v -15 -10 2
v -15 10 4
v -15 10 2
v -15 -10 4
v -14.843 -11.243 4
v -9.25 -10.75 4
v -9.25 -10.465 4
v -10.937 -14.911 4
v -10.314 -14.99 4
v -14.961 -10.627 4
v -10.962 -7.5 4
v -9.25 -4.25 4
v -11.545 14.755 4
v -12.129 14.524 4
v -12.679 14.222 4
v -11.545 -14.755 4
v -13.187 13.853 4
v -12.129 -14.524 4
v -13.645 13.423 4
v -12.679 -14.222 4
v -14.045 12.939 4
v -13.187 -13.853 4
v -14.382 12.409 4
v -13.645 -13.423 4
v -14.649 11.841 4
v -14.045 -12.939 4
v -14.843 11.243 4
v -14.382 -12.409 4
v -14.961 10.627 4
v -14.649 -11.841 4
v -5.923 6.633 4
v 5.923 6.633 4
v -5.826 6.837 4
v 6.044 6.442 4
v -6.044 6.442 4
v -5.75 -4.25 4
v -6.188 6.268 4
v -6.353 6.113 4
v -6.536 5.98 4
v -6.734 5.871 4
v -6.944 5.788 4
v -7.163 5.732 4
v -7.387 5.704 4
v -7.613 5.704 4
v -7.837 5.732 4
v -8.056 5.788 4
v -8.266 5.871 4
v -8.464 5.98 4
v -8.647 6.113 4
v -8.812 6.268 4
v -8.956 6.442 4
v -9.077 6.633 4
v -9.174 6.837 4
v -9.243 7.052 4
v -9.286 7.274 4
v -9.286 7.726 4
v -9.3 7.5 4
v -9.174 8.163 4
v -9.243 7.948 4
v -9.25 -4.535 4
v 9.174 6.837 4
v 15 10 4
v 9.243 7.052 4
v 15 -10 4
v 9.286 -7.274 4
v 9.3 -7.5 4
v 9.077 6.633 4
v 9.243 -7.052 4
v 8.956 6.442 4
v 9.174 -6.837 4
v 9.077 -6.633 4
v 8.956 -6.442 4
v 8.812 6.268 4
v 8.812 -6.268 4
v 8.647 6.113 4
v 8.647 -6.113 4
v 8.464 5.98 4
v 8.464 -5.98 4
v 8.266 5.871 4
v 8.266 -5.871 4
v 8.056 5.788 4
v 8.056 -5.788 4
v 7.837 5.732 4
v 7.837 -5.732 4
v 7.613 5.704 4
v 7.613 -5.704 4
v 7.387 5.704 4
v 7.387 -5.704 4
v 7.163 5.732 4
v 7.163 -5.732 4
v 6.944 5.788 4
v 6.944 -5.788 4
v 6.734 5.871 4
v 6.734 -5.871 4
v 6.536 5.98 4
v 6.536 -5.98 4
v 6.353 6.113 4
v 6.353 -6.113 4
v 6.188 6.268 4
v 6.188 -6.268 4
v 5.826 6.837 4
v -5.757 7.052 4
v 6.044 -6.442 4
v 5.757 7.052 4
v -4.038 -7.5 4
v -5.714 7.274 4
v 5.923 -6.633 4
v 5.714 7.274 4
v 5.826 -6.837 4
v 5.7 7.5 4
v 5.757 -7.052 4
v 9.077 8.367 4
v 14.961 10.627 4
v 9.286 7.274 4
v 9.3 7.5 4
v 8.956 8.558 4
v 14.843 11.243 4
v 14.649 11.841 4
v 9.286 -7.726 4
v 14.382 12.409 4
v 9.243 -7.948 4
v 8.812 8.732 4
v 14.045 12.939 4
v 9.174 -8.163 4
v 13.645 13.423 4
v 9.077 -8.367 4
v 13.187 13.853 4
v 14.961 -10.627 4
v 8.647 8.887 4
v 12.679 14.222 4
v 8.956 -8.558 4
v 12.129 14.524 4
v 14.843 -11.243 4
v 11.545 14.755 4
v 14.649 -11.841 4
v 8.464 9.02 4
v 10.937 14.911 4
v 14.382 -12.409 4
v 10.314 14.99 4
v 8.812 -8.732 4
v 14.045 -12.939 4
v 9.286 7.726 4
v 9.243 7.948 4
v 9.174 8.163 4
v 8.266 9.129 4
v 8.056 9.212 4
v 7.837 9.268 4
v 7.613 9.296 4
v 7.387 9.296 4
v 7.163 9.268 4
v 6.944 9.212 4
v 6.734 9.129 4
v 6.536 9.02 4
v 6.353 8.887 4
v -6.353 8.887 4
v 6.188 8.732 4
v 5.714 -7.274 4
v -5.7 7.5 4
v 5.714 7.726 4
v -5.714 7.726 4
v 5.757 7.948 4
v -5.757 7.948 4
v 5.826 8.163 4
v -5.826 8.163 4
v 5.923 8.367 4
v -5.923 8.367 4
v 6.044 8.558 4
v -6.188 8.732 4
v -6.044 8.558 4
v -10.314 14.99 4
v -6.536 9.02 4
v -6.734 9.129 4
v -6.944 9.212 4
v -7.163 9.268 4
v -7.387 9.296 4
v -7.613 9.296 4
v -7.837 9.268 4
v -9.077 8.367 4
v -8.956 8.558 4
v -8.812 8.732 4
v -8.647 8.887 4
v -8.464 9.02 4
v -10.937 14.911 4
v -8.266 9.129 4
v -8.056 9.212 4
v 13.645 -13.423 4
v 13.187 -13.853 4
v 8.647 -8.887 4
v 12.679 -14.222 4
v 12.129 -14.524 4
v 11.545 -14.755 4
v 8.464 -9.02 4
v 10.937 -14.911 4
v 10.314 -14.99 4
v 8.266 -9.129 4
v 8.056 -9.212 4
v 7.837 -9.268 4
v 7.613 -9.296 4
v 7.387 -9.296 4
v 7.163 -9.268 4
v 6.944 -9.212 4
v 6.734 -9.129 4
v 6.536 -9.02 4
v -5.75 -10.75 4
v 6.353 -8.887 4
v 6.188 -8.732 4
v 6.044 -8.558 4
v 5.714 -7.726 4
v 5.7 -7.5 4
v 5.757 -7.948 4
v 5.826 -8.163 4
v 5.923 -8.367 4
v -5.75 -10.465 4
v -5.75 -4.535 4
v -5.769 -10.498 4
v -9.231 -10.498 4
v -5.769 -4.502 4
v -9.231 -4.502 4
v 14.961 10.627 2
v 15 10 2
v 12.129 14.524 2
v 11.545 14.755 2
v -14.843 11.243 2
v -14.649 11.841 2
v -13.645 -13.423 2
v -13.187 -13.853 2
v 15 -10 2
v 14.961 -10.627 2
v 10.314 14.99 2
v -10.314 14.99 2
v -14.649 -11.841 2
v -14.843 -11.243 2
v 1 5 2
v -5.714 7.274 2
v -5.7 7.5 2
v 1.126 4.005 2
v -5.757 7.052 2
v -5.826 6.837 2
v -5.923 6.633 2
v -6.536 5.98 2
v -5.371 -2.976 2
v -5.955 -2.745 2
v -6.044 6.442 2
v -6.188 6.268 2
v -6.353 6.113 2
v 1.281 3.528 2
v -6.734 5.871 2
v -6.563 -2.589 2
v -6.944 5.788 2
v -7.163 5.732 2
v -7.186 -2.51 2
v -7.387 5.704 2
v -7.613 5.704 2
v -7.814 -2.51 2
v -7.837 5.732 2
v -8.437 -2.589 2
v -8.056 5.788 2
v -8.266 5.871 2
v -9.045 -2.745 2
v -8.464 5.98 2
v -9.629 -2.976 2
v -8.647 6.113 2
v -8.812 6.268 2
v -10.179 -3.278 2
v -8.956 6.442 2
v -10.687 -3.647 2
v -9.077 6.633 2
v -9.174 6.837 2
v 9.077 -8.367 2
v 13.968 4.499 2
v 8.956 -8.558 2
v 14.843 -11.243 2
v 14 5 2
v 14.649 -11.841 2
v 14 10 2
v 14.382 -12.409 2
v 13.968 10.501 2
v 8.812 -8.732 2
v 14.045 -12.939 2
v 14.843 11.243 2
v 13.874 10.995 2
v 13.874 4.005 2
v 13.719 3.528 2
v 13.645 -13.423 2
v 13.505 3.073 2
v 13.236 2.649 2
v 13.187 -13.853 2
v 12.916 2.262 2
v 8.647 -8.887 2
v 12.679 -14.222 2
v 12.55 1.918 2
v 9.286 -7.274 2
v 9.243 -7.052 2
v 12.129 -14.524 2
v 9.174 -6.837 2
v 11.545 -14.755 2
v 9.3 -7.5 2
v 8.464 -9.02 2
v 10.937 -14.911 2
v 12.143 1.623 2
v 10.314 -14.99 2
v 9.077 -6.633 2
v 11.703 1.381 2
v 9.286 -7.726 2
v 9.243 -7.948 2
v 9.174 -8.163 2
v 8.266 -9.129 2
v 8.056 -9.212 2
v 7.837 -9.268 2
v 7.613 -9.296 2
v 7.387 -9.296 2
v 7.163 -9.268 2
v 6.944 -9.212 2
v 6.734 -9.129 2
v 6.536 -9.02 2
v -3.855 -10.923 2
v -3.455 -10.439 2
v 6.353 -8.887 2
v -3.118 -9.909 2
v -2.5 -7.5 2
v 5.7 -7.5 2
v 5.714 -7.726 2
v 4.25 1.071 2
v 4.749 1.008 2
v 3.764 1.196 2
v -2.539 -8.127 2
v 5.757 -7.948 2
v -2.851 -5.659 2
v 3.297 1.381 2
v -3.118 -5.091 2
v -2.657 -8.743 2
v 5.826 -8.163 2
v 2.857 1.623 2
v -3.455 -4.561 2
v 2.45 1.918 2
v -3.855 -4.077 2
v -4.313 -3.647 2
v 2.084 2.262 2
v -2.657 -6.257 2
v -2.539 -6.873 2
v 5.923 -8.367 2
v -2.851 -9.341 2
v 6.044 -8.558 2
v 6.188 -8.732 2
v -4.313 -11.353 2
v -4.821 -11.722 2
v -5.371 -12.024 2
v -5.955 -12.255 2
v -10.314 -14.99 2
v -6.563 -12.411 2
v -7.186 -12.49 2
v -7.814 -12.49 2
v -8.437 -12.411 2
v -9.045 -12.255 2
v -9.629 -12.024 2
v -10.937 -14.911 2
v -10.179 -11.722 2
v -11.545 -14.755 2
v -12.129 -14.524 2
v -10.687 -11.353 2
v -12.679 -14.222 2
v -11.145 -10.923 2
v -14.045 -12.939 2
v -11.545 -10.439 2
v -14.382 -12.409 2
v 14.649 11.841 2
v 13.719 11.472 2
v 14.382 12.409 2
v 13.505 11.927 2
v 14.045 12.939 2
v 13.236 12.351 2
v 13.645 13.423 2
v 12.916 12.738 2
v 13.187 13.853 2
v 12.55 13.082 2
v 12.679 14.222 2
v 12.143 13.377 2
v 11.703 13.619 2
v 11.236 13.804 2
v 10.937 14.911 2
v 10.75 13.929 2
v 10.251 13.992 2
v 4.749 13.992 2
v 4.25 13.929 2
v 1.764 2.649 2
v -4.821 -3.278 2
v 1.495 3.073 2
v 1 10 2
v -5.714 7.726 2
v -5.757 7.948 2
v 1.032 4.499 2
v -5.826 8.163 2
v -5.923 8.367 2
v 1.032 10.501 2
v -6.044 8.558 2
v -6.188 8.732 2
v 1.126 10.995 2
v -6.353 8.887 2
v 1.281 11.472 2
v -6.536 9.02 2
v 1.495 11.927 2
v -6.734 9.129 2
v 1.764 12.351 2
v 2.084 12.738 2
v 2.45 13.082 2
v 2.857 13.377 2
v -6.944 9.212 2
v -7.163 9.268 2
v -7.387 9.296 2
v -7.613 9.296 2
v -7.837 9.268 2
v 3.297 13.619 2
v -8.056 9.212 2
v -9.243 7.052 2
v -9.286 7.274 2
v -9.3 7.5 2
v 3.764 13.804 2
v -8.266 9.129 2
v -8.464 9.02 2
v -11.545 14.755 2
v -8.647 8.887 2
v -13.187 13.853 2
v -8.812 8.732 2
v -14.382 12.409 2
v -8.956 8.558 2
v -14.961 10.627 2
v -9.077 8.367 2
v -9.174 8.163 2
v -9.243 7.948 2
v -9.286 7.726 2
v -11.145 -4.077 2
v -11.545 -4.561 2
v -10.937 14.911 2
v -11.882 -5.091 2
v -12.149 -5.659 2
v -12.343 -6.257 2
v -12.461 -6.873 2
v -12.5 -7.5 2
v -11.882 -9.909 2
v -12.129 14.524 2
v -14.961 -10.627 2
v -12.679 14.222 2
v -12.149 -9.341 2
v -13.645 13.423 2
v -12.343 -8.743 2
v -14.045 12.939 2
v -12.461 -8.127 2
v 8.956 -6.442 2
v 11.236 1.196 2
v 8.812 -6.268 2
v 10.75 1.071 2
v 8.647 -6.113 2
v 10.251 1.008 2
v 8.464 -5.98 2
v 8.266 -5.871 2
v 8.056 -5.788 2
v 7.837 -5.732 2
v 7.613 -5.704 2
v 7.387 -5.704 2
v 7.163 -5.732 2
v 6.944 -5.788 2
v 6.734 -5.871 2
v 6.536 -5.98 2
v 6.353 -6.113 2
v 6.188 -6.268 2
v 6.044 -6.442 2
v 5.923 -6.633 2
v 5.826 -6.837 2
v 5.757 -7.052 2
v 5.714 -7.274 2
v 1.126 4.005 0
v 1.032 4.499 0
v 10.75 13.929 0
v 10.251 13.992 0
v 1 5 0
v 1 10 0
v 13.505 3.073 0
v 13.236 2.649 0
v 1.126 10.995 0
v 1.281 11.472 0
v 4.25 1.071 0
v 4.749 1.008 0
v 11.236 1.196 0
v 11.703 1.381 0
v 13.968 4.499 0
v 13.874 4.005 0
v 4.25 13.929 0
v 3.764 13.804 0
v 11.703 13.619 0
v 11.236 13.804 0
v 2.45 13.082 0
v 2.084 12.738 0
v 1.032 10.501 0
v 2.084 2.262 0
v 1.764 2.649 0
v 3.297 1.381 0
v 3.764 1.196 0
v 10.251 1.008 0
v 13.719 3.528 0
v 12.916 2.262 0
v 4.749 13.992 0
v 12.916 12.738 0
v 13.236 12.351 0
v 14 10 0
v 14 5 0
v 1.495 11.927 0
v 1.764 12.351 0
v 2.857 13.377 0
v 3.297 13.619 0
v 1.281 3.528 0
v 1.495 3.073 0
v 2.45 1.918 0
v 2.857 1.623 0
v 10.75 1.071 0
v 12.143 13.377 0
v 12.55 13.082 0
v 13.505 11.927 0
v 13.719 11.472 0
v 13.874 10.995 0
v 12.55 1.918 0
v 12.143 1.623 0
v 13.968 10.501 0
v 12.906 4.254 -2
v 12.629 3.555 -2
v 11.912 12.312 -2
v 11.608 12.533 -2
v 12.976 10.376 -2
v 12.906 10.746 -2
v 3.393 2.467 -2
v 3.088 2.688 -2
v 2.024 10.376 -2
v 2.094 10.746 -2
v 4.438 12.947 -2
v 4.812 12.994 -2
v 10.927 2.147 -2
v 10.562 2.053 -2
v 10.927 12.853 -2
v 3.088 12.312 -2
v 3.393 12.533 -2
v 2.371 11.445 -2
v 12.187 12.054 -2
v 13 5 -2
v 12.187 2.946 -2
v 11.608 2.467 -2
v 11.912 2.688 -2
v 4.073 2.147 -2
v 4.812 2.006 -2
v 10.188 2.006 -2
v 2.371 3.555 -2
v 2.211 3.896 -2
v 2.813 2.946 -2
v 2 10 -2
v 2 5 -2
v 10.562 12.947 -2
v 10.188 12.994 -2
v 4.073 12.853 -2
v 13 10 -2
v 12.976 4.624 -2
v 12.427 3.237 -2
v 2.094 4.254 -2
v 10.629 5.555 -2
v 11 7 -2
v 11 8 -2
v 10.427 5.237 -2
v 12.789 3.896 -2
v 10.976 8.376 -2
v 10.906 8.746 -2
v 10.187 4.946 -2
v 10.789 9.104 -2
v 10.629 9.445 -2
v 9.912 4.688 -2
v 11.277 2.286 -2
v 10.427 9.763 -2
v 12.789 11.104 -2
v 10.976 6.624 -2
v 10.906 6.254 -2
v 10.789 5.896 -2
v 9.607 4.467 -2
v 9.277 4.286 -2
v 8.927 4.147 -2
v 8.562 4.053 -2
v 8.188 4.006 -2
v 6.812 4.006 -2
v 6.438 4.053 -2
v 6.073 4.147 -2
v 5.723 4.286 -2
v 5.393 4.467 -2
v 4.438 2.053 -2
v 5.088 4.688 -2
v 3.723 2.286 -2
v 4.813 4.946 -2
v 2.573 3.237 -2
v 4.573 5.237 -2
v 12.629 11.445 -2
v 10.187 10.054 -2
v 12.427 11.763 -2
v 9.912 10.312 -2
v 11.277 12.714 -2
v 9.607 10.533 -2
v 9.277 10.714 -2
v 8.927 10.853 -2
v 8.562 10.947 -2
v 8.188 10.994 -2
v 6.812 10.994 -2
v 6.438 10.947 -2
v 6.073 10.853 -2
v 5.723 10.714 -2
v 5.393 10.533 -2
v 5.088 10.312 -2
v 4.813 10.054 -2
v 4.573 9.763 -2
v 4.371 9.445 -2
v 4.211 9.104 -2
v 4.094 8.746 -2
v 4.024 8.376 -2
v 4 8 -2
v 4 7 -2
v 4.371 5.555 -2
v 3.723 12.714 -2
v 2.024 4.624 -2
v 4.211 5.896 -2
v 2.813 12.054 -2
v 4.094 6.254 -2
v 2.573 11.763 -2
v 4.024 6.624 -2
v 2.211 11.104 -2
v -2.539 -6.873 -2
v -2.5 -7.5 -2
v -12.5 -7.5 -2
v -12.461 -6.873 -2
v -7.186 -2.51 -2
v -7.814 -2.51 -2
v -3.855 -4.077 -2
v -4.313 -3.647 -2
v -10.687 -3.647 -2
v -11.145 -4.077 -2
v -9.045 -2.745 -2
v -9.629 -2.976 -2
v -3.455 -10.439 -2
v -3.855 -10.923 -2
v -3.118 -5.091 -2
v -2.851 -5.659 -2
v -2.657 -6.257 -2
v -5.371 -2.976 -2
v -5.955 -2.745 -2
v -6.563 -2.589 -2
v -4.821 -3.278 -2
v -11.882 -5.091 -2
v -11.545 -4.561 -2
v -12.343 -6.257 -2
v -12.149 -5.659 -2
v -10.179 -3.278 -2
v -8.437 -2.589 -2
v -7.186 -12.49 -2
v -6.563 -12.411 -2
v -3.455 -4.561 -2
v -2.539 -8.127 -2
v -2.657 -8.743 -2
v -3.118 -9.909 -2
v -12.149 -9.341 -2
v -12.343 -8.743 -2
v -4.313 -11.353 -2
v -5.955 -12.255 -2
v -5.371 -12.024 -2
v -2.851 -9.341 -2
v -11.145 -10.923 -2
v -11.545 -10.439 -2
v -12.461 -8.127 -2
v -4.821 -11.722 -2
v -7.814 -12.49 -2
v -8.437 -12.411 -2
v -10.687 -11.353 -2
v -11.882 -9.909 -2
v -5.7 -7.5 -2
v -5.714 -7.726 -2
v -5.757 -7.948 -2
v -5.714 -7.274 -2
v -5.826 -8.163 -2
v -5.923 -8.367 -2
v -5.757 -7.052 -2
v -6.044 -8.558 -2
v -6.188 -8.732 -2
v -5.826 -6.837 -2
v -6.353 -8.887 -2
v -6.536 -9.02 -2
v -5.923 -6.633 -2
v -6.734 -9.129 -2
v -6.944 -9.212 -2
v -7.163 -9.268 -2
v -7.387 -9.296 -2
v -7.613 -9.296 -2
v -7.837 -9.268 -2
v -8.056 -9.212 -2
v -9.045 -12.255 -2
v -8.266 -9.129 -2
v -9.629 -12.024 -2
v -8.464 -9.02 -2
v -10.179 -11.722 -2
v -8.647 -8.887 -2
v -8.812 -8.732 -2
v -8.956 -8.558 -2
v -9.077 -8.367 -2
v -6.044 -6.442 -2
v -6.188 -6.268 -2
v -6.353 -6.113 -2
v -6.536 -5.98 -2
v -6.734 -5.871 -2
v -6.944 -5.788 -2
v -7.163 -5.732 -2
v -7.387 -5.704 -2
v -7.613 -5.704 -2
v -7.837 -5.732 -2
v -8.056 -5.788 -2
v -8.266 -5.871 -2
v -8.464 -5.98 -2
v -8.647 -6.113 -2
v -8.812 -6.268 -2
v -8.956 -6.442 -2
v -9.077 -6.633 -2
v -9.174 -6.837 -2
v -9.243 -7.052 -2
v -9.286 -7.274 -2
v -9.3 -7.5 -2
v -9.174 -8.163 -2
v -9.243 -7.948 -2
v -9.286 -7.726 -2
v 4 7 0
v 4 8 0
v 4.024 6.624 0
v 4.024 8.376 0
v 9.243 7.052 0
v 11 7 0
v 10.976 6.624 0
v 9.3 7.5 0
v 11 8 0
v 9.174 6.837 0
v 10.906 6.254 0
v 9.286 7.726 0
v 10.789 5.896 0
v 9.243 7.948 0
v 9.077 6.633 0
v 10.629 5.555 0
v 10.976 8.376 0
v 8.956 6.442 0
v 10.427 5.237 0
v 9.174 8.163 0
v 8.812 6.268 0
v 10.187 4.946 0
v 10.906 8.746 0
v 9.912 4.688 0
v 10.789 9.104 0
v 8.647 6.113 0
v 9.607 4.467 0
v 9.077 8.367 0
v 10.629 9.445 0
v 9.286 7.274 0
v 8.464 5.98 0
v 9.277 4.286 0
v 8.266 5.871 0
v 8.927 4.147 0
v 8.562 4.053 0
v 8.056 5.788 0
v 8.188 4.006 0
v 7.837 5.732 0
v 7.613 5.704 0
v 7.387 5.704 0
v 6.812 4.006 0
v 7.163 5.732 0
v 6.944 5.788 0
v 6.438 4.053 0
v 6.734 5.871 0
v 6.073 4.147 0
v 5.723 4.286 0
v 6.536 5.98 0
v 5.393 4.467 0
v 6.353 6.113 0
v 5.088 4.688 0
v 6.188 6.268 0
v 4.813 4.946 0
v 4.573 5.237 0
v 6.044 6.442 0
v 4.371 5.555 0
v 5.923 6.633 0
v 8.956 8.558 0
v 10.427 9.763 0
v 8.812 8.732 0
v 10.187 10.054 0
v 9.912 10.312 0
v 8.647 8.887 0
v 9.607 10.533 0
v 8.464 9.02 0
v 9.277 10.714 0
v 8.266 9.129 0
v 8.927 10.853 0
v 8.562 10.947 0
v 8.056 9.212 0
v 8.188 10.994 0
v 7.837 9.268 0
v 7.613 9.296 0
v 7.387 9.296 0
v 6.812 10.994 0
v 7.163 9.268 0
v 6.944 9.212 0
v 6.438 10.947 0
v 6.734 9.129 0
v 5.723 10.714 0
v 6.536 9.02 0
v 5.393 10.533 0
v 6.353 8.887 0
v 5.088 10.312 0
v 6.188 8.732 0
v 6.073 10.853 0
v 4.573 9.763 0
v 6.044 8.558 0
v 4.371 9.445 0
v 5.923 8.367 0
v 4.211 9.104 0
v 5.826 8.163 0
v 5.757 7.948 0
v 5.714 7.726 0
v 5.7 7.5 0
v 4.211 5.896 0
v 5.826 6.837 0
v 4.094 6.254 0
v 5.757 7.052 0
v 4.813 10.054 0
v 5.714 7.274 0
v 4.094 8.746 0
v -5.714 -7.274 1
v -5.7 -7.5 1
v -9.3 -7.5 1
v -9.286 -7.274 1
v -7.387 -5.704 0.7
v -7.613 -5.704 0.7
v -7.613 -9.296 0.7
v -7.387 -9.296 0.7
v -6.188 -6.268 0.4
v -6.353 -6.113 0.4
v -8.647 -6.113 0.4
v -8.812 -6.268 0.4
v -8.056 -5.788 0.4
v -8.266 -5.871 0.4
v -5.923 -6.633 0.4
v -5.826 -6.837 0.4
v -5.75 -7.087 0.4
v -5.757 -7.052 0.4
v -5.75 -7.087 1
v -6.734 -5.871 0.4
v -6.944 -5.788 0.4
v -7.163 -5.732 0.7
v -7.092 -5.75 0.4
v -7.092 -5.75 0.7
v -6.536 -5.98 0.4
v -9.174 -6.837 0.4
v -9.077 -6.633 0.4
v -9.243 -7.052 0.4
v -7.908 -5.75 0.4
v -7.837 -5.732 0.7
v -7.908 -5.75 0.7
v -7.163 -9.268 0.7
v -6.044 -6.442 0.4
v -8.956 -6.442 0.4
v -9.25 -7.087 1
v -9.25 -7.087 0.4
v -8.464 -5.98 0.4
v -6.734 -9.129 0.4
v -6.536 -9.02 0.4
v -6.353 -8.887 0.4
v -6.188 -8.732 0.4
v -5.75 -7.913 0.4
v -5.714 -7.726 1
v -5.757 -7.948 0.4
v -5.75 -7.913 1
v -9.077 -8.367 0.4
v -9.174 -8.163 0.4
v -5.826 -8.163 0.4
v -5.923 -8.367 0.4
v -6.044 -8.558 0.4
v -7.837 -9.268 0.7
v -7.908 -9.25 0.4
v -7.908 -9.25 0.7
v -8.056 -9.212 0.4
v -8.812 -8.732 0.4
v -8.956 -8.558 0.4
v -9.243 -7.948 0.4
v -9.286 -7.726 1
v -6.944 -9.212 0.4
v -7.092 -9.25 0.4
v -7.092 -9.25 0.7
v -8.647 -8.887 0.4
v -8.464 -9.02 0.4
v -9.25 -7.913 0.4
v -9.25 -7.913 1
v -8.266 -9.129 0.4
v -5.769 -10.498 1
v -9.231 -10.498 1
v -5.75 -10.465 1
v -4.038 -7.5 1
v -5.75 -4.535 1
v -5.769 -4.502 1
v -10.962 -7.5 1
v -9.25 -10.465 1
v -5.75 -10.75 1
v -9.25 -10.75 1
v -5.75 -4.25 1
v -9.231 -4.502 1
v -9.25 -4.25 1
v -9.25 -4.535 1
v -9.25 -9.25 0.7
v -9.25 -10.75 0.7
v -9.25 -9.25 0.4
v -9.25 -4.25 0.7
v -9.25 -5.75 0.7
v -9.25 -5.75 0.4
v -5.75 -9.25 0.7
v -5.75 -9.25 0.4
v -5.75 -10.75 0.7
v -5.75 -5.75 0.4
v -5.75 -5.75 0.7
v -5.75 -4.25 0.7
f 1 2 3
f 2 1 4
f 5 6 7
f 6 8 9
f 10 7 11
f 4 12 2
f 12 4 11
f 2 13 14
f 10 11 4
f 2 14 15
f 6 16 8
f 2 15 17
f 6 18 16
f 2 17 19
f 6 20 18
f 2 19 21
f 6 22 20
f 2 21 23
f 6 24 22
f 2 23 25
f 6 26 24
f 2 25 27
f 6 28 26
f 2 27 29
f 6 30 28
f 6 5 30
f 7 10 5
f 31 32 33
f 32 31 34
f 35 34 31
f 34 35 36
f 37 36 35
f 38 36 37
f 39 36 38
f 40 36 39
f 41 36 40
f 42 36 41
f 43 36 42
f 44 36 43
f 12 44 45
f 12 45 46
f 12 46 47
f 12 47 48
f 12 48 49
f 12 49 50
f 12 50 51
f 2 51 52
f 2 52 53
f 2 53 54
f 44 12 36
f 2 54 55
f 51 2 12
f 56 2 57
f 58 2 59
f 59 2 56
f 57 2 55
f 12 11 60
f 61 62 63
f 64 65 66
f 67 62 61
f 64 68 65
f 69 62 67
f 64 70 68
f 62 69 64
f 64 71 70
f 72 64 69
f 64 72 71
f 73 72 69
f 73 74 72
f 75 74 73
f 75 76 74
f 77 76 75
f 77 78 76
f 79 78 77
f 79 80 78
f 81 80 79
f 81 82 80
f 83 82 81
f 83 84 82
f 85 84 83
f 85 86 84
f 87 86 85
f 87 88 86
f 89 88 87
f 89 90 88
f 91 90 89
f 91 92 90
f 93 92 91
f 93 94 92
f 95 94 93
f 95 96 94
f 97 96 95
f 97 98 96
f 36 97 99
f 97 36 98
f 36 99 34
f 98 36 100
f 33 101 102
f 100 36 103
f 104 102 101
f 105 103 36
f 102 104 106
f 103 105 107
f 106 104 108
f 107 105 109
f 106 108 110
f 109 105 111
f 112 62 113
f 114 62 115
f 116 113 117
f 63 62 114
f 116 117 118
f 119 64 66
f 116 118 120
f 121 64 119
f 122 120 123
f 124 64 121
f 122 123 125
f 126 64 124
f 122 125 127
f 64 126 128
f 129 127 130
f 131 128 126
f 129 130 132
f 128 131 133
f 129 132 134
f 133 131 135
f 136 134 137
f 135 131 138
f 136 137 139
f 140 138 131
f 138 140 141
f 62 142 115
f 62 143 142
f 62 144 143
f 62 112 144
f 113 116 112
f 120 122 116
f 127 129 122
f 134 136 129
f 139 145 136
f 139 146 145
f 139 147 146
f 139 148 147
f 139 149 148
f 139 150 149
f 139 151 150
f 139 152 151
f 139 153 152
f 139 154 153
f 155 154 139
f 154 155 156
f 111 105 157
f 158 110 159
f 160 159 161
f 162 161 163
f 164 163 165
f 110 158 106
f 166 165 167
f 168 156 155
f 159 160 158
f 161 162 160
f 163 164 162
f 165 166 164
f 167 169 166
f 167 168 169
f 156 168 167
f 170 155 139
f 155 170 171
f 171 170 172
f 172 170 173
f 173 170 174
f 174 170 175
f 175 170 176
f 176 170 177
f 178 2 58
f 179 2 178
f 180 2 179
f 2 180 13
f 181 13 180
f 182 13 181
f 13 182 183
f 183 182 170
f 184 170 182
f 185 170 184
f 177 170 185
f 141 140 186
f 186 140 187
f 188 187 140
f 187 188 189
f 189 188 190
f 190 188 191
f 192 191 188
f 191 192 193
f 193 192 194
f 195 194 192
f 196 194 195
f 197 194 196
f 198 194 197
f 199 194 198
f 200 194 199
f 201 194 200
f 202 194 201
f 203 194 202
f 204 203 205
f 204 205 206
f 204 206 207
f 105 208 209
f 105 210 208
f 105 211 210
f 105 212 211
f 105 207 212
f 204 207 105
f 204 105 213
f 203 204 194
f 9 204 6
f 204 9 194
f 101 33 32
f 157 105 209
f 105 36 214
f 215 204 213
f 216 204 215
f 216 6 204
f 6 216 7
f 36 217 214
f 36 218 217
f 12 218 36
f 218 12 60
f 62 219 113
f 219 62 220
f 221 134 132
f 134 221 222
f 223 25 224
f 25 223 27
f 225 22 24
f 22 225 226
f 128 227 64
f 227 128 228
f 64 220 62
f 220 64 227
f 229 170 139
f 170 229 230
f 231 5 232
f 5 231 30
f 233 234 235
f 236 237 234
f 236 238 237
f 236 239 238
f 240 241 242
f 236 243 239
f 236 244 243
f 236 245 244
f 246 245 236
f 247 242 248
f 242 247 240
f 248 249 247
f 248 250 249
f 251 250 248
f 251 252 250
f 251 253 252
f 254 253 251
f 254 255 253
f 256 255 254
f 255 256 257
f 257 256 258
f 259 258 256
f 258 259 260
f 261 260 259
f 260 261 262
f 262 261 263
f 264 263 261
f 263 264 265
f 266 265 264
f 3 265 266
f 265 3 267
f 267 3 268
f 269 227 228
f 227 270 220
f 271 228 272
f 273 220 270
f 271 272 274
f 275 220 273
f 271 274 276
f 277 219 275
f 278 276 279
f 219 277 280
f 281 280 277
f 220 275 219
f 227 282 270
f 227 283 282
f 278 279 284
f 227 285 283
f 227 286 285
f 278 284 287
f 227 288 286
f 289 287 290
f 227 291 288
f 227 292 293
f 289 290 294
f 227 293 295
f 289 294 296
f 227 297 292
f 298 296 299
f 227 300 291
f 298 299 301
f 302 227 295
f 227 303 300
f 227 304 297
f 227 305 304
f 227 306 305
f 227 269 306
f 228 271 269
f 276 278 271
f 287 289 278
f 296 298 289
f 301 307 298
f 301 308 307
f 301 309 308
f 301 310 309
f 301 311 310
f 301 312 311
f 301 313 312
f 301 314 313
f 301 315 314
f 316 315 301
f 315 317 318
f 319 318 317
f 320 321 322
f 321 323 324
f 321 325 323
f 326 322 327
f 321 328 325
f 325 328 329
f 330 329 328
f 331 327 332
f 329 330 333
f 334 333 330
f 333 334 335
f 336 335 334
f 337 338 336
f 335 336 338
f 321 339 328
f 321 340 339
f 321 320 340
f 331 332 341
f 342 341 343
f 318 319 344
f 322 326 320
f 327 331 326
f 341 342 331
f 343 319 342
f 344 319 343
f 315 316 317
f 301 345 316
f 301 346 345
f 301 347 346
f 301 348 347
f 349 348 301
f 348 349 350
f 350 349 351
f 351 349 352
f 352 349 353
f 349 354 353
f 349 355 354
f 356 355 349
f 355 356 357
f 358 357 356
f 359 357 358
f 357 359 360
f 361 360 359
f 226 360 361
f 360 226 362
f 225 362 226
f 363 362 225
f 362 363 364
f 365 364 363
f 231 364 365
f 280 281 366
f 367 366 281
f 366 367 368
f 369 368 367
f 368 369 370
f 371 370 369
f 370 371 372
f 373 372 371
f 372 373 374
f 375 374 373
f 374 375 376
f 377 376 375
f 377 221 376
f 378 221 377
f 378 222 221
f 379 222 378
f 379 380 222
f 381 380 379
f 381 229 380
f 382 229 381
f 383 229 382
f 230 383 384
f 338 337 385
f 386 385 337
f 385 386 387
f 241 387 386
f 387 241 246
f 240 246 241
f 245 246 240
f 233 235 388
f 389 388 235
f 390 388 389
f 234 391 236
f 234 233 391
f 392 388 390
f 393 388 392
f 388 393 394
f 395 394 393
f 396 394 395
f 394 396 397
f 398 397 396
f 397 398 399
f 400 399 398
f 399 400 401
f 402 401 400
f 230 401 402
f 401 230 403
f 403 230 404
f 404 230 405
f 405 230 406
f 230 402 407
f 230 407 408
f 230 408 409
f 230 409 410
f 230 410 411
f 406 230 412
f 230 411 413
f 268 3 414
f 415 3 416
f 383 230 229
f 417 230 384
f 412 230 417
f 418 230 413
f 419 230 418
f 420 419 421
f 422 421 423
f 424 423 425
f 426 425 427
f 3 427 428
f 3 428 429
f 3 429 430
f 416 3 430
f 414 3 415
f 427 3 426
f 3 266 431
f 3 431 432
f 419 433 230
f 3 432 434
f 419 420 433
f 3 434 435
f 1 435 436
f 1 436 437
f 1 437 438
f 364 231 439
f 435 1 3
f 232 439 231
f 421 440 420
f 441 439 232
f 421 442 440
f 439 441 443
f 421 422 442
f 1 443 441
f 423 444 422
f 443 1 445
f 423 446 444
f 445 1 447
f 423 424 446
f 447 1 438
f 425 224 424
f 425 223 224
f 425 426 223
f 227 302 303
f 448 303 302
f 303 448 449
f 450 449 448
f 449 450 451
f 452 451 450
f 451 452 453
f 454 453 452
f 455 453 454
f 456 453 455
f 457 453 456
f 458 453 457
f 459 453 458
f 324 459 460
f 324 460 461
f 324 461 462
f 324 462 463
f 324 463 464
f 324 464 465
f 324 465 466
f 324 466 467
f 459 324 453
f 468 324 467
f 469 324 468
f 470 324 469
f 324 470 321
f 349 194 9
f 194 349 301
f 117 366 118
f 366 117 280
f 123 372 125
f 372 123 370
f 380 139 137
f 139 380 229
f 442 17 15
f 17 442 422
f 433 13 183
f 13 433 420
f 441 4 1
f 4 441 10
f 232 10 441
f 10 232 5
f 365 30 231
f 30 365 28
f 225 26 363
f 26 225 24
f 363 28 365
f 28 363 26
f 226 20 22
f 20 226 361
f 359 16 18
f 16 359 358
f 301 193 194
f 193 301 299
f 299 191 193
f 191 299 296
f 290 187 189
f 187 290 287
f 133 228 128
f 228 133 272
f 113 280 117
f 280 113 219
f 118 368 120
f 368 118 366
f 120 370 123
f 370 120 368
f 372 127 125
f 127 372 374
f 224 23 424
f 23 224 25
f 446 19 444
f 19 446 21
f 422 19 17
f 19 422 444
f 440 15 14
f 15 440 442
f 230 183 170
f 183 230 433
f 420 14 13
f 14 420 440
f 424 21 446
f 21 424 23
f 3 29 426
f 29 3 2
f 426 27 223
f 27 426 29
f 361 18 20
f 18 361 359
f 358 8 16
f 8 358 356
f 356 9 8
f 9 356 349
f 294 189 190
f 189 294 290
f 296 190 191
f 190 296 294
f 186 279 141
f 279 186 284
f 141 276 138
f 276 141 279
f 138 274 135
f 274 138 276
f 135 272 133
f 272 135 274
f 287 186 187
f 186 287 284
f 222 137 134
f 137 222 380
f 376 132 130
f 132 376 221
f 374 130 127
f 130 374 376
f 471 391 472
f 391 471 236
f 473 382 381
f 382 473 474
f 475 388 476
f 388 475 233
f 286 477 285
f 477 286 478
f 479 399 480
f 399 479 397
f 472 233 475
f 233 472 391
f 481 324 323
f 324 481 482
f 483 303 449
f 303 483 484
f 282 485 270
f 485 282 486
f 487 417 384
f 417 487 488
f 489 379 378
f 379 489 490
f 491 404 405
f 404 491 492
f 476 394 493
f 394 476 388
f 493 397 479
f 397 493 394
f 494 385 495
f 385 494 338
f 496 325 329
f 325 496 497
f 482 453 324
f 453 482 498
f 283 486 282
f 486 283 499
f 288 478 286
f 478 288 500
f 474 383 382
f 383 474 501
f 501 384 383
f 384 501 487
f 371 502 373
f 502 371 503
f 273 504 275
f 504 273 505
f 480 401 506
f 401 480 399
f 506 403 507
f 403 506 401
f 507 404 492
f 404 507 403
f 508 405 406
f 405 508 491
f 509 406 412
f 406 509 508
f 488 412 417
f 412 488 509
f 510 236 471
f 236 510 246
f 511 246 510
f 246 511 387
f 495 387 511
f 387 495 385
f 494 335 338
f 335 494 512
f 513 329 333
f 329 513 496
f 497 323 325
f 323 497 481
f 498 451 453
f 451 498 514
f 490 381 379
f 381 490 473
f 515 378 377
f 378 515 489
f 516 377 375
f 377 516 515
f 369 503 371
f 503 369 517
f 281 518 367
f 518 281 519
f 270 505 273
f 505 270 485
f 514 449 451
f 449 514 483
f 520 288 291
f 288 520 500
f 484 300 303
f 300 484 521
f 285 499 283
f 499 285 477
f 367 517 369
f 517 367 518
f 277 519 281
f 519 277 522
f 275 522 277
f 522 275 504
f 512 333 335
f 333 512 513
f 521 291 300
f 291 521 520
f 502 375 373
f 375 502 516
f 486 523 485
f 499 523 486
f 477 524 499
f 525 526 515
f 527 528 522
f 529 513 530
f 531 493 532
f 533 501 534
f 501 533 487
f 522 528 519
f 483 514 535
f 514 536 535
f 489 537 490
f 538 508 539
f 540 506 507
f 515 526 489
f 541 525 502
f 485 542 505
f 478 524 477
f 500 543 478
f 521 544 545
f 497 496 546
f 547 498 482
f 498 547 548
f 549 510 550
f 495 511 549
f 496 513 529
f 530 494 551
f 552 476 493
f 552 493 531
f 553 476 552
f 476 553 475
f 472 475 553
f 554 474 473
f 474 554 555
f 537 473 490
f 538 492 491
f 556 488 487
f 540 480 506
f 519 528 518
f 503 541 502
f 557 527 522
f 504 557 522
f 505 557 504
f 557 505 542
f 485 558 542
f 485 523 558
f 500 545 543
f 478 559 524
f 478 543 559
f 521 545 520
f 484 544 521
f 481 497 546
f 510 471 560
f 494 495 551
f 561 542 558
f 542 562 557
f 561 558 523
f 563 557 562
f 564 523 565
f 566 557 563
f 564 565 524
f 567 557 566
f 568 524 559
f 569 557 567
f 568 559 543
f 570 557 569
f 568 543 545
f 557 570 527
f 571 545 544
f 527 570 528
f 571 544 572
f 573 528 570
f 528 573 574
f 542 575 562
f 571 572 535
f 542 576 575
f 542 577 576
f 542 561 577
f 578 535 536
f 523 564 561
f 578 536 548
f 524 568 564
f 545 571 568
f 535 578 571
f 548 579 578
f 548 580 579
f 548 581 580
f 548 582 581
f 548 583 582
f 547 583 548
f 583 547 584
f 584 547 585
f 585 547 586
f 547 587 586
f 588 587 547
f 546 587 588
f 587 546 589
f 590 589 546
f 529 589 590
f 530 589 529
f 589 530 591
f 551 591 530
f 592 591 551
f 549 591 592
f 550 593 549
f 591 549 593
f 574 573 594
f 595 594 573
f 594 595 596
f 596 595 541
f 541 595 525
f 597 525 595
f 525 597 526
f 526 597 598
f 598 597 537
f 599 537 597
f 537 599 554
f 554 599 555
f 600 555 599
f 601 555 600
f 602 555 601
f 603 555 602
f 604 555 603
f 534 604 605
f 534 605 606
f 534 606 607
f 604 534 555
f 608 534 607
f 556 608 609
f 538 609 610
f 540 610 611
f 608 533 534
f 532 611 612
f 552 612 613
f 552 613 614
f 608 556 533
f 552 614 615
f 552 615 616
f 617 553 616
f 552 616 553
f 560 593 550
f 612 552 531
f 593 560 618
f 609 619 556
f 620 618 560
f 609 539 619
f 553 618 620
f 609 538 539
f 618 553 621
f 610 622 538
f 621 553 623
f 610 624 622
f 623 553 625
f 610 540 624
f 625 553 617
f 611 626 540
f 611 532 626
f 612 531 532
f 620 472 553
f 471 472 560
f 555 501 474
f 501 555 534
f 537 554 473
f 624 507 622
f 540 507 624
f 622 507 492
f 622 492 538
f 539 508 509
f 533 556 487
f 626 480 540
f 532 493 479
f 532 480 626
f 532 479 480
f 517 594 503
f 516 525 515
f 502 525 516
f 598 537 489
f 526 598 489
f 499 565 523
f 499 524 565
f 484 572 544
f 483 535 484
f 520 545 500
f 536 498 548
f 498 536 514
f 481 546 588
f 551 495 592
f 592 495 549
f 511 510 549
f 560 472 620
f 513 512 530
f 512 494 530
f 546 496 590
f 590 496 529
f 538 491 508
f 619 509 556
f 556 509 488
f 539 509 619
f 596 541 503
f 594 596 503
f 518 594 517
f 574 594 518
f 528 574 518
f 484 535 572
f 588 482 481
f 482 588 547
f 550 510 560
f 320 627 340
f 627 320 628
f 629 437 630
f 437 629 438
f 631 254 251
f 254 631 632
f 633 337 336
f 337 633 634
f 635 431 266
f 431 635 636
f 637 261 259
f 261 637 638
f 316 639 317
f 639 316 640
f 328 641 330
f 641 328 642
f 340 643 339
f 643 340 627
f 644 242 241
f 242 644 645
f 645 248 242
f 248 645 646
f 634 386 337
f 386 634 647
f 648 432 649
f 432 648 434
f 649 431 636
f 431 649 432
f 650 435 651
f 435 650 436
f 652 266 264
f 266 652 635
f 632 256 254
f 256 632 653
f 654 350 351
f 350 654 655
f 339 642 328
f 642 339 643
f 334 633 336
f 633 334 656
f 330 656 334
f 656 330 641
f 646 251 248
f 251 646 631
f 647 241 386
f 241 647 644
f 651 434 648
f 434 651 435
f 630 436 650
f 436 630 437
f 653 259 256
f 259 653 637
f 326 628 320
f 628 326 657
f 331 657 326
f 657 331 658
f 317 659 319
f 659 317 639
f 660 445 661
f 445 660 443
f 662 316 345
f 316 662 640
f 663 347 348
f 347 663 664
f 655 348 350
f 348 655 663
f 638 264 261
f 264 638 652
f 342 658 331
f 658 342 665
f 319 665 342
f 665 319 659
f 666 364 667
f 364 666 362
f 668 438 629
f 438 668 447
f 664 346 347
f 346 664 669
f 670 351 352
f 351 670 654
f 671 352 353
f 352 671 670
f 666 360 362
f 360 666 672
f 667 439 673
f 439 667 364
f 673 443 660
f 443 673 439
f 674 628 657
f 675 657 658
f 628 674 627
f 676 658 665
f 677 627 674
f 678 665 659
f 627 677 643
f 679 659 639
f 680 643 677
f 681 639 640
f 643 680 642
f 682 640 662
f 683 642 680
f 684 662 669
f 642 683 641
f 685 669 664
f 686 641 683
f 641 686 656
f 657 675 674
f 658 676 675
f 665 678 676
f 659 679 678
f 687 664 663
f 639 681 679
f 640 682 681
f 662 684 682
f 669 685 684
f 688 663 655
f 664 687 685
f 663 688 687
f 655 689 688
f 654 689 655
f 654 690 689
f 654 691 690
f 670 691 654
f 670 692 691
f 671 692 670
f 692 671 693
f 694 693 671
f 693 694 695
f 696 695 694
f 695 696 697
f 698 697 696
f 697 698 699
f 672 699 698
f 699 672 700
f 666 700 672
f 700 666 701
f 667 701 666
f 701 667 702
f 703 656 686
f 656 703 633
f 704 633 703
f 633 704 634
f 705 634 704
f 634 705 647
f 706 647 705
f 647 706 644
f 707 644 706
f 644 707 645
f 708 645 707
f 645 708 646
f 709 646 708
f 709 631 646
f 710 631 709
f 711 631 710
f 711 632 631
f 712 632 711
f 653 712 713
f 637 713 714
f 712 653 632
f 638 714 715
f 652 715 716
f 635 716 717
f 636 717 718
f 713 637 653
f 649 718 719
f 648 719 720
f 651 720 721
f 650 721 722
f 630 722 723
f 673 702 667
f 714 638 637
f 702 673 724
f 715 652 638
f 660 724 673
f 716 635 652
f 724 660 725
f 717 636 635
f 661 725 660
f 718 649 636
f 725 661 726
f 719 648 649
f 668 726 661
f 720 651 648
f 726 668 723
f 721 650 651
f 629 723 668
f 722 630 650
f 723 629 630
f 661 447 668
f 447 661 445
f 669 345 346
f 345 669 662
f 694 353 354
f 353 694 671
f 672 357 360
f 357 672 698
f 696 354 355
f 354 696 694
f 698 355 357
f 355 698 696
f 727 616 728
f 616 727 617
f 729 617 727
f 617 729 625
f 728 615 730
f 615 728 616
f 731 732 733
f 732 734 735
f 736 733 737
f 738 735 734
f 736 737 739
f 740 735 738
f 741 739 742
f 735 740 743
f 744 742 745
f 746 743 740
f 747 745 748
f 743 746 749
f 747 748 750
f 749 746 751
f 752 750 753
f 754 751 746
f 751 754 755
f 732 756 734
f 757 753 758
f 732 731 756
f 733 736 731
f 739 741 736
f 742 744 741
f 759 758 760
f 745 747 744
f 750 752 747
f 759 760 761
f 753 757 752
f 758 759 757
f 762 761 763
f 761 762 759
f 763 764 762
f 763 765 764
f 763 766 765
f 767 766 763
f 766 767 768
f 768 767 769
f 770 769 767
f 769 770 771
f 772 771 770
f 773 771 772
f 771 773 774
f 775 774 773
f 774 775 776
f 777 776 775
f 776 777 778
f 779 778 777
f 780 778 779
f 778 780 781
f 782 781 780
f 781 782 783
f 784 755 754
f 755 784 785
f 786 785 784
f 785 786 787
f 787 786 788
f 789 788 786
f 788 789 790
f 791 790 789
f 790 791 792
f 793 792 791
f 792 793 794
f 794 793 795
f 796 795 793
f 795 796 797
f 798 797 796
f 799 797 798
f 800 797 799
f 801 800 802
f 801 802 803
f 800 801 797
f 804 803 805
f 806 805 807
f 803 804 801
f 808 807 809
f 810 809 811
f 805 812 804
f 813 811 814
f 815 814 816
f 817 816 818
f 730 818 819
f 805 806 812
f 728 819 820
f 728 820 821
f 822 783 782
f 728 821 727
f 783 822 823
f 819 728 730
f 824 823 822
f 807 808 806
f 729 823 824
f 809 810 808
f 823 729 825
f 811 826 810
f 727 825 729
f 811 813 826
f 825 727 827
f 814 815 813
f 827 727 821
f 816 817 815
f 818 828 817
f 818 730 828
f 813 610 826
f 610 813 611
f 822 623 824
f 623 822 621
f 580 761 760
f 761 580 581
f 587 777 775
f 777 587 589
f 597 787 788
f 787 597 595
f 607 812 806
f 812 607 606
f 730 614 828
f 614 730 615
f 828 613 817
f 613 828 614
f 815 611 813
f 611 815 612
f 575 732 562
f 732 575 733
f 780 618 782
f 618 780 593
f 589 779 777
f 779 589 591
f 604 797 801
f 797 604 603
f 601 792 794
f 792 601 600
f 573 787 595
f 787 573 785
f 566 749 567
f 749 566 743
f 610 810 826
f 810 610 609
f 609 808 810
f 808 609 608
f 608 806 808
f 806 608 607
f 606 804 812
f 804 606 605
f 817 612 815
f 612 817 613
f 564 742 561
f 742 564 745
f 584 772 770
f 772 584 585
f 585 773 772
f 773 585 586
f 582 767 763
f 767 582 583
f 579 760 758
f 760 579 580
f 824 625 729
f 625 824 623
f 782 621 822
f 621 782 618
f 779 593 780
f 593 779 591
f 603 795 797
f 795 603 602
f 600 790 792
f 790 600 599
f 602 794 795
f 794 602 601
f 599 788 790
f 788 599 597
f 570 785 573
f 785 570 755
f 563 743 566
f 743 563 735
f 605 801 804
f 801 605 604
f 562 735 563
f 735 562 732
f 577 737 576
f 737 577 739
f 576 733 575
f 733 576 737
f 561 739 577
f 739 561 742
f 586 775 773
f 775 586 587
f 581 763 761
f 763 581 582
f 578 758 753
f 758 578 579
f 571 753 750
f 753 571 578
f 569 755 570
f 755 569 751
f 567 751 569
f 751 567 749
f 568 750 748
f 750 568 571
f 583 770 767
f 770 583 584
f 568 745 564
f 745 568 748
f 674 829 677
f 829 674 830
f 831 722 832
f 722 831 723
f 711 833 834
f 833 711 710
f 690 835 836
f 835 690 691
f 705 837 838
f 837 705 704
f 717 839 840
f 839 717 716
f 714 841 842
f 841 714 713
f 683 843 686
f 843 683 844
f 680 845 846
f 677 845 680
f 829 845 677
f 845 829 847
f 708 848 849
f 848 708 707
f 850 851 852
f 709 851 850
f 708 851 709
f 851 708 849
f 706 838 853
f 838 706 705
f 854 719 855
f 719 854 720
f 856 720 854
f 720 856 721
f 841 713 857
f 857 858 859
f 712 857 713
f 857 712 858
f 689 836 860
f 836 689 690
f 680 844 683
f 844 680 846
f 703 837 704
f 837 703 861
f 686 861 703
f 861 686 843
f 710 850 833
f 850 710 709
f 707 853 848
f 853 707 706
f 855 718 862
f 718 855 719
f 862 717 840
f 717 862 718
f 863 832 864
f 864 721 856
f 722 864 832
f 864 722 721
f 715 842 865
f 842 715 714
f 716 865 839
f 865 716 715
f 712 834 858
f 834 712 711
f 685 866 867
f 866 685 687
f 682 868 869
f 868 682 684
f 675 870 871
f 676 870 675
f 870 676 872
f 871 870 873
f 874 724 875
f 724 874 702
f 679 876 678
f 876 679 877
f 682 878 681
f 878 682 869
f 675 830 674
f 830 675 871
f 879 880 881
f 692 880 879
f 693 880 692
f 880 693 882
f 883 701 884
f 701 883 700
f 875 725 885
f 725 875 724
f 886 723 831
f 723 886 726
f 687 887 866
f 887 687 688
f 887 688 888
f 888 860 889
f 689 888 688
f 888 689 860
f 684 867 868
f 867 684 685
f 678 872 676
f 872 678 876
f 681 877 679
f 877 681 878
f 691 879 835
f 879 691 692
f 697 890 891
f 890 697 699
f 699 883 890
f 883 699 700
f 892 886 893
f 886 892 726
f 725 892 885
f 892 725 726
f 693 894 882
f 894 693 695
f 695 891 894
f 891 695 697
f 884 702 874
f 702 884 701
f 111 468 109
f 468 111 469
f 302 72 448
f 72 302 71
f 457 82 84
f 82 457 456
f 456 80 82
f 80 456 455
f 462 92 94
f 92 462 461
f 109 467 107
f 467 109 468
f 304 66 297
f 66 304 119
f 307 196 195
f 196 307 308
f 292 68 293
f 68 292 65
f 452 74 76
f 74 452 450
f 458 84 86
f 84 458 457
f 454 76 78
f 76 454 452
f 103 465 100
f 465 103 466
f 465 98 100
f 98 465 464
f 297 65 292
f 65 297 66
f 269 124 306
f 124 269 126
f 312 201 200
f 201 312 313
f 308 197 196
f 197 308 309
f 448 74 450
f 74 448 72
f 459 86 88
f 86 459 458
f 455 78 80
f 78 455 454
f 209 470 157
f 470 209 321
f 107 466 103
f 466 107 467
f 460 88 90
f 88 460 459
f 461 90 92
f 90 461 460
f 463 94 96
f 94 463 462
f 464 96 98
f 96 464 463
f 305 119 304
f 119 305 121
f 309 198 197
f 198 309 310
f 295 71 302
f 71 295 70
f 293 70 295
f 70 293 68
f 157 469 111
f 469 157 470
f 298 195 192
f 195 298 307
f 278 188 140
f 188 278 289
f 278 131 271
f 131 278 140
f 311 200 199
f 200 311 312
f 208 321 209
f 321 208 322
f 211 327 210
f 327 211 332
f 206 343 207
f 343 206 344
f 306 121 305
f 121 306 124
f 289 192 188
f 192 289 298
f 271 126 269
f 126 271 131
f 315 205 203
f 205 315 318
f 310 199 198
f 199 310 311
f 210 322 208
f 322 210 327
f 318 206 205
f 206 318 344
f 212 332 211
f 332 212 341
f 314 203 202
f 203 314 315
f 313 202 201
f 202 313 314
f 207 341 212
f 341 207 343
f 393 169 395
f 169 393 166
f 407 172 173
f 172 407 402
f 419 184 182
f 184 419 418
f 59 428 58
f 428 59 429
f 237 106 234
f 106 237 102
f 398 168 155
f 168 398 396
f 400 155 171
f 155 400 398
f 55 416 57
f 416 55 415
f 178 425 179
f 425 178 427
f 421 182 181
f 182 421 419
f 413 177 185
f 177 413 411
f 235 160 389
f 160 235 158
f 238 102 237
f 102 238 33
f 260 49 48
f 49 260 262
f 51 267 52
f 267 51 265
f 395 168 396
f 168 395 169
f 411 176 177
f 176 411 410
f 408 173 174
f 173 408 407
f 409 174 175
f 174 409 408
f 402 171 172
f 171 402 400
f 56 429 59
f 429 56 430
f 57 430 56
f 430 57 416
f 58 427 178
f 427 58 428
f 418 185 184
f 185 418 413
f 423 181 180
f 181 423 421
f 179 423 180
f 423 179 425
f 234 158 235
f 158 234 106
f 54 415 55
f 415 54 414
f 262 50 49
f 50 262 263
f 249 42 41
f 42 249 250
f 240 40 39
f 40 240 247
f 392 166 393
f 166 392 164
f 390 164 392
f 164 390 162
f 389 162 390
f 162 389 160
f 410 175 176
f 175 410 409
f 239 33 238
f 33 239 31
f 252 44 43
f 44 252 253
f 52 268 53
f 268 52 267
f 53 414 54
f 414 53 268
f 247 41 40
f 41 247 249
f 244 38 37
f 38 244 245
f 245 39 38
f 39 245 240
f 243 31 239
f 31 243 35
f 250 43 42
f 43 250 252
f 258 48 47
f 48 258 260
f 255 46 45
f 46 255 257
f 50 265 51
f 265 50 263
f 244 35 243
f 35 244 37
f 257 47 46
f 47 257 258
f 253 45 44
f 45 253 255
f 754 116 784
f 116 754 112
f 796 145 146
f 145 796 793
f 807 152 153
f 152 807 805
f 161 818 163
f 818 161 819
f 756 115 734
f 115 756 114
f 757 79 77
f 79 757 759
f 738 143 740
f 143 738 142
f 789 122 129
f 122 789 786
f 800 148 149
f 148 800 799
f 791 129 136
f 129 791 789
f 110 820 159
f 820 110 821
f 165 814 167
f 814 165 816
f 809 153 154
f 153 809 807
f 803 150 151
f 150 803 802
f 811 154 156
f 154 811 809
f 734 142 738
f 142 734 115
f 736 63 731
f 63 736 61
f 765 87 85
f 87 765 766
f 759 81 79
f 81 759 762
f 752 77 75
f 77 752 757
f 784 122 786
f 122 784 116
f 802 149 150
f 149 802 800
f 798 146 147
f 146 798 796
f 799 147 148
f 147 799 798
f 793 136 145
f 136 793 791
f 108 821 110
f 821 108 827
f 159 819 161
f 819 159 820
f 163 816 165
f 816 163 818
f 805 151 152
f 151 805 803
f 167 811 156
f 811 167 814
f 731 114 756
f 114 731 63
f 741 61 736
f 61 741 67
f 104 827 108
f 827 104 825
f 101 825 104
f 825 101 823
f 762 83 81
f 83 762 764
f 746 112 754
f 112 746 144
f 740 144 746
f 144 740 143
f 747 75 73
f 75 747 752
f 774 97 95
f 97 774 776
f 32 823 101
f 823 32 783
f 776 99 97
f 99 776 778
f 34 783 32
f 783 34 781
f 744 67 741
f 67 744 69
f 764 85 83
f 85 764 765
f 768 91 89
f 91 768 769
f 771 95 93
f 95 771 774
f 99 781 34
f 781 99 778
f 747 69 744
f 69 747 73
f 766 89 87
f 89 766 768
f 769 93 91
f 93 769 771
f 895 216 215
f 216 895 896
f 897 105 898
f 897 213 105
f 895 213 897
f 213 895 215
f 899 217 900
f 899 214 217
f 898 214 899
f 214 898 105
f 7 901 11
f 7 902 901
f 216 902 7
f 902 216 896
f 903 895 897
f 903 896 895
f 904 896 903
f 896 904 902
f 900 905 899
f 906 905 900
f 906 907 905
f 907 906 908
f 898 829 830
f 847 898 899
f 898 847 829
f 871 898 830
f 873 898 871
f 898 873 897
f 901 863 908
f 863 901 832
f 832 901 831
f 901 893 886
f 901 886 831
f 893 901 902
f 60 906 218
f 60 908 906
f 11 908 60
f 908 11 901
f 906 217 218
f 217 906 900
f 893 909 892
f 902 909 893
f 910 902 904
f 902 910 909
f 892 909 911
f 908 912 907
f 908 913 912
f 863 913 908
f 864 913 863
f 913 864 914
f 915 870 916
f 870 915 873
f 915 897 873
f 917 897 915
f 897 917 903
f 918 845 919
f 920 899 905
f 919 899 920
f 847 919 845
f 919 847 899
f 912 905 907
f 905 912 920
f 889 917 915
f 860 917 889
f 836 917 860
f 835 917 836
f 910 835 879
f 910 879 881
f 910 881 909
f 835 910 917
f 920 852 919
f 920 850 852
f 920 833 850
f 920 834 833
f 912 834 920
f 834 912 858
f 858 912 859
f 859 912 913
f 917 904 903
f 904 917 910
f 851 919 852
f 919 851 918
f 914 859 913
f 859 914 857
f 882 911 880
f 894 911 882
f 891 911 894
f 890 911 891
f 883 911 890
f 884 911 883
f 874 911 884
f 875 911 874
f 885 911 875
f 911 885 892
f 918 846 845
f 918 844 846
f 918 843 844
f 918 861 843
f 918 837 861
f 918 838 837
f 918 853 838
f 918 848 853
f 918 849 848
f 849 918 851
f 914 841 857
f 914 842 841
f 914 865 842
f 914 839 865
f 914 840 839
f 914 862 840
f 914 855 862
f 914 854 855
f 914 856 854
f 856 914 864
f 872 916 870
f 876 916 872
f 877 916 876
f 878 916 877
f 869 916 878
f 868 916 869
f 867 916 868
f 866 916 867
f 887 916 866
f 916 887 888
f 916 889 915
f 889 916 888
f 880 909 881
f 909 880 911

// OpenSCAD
$fn = 50;


difference() {
	union() {
		translate(v = [0, 0, 2]) {
			rotate(a = [0, 0, 0]) {
				hull() {
					translate(v = [-10.0000000000, 10.0000000000, 0]) {
						rotate(a = [0, 0, 0]) {
							translate(v = [0, 0, 0]) {
								rotate(a = [0, 0, 0]) {
									cylinder(h = 2, r = 5);
								}
							}
						}
					}
					translate(v = [10.0000000000, 10.0000000000, 0]) {
						rotate(a = [0, 0, 0]) {
							translate(v = [0, 0, 0]) {
								rotate(a = [0, 0, 0]) {
									cylinder(h = 2, r = 5);
								}
							}
						}
					}
					translate(v = [-10.0000000000, -10.0000000000, 0]) {
						rotate(a = [0, 0, 0]) {
							translate(v = [0, 0, 0]) {
								rotate(a = [0, 0, 0]) {
									cylinder(h = 2, r = 5);
								}
							}
						}
					}
					translate(v = [10.0000000000, -10.0000000000, 0]) {
						rotate(a = [0, 0, 0]) {
							translate(v = [0, 0, 0]) {
								rotate(a = [0, 0, 0]) {
									cylinder(h = 2, r = 5);
								}
							}
						}
					}
				}
			}
		}
		translate(v = [7.5000000000, 7.5000000000, 0]) {
			rotate(a = [0, 0, 0]) {
				hull() {
					translate(v = [-2.5000000000, 2.5000000000, 0]) {
						rotate(a = [0, 0, 0]) {
							cylinder(h = 2, r1 = 4.0000000000, r2 = 4.0000000000);
						}
					}
					translate(v = [2.5000000000, 2.5000000000, 0]) {
						rotate(a = [0, 0, 0]) {
							cylinder(h = 2, r1 = 4.0000000000, r2 = 4.0000000000);
						}
					}
					translate(v = [-2.5000000000, -2.5000000000, 0]) {
						rotate(a = [0, 0, 0]) {
							cylinder(h = 2, r1 = 4.0000000000, r2 = 4.0000000000);
						}
					}
					translate(v = [2.5000000000, -2.5000000000, 0]) {
						rotate(a = [0, 0, 0]) {
							cylinder(h = 2, r1 = 4.0000000000, r2 = 4.0000000000);
						}
					}
				}
			}
		}
		translate(v = [7.5000000000, 7.5000000000, -2]) {
			rotate(a = [0, 180, 0]) {
				hull() {
					translate(v = [-2.5000000000, 2.5000000000, 0]) {
						rotate(a = [0, 180, 0]) {
							cylinder(h = 2, r1 = 3.0000000000, r2 = 4.0000000000);
						}
					}
					translate(v = [2.5000000000, 2.5000000000, 0]) {
						rotate(a = [0, 180, 0]) {
							cylinder(h = 2, r1 = 3.0000000000, r2 = 4.0000000000);
						}
					}
					translate(v = [-2.5000000000, -2.5000000000, 0]) {
						rotate(a = [0, 180, 0]) {
							cylinder(h = 2, r1 = 3.0000000000, r2 = 4.0000000000);
						}
					}
					translate(v = [2.5000000000, -2.5000000000, 0]) {
						rotate(a = [0, 180, 0]) {
							cylinder(h = 2, r1 = 3.0000000000, r2 = 4.0000000000);
						}
					}
				}
			}
		}
		translate(v = [-7.5000000000, -7.5000000000, -2.0000000000]) {
			rotate(a = [0, 0, 0]) {
				cylinder(h = 4, r = 5);
			}
		}
	}
	union() {
		translate(v = [7.5000000000, 7.5000000000, -2]) {
			rotate(a = [0, 0, 0]) {
				hull() {
					translate(v = [-0.5000000000, 0.5000000000, 0]) {
						rotate(a = [0, 0, 0]) {
							translate(v = [0, 0, 0]) {
								rotate(a = [0, 0, 0]) {
									cylinder(h = 2, r = 3.0000000000);
								}
							}
						}
					}
					translate(v = [0.5000000000, 0.5000000000, 0]) {
						rotate(a = [0, 0, 0]) {
							translate(v = [0, 0, 0]) {
								rotate(a = [0, 0, 0]) {
									cylinder(h = 2, r = 3.0000000000);
								}
							}
						}
					}
					translate(v = [-0.5000000000, -0.5000000000, 0]) {
						rotate(a = [0, 0, 0]) {
							translate(v = [0, 0, 0]) {
								rotate(a = [0, 0, 0]) {
									cylinder(h = 2, r = 3.0000000000);
								}
							}
						}
					}
					translate(v = [0.5000000000, -0.5000000000, 0]) {
						rotate(a = [0, 0, 0]) {
							translate(v = [0, 0, 0]) {
								rotate(a = [0, 0, 0]) {
									cylinder(h = 2, r = 3.0000000000);
								}
							}
						}
					}
				}
			}
		}
		translate(v = [-7.5000000000, -7.5000000000, -50]) {
			rotate(a = [0, 0, 0]) {
				cylinder(h = 100, r = 1.8000000000);
			}
		}
		translate(v = [7.5000000000, -7.5000000000, -50]) {
			rotate(a = [0, 0, 0]) {
				cylinder(h = 100, r = 1.8000000000);
			}
		}
		translate(v = [-7.5000000000, 7.5000000000, -50]) {
			rotate(a = [0, 0, 0]) {
				cylinder(h = 100, r = 1.8000000000);
			}
		}
		translate(v = [7.5000000000, 7.5000000000, -50]) {
			rotate(a = [0, 0, 0]) {
				cylinder(h = 100, r = 1.8000000000);
			}
		}
		translate(v = [-7.5000000000, -7.5000000000, 1]) {
			rotate(a = [0, 0, 0]) {
				#translate(v = [0, 0, 0]) {
					rotate(a = [0, 0, 0]) {
						linear_extrude(height = 3) {
							polygon(points = [[3.4620000000, 0.0000000000], [1.7310000000, 2.9981799479], [-1.7310000000, 2.9981799479], [-3.4620000000, 0.0000000000], [-1.7310000000, -2.9981799479], [1.7310000000, -2.9981799479]]);
						}
					}
				}
			}
		}
		#translate(v = [-9.2500000000, -10.7500000000, 4]) {
			rotate(a = [0, 0, 0]) {
				cube(size = [3.5000000000, 6.5000000000, 0.3000000000]);
			}
		}
		#translate(v = [-9.2500000000, -9.2500000000, 4.3000000000]) {
			rotate(a = [0, 0, 0]) {
				cube(size = [3.5000000000, 3.5000000000, 0.3000000000]);
			}
		}
		#translate(v = [-9.2500000000, -10.7500000000, 0.7000000000]) {
			rotate(a = [0, 0, 0]) {
				cube(size = [3.5000000000, 6.5000000000, 0.3000000000]);
			}
		}
		#translate(v = [-9.2500000000, -9.2500000000, 0.4000000000]) {
			rotate(a = [0, 0, 0]) {
				cube(size = [3.5000000000, 3.5000000000, 0.3000000000]);
			}
		}
	}
}
